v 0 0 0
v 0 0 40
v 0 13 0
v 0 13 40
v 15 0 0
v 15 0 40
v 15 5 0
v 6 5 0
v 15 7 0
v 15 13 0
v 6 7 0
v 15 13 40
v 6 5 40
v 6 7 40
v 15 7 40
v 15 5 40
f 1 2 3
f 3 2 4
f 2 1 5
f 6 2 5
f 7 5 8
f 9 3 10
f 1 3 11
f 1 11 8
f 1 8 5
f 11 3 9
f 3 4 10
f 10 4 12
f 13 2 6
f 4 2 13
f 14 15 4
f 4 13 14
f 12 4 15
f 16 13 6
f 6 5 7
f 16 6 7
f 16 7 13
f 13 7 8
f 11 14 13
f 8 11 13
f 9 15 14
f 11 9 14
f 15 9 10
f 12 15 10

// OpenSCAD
difference(){
cube([15,13,40]);
translate([6,5,-10])
cube([100,2,100]);
}
